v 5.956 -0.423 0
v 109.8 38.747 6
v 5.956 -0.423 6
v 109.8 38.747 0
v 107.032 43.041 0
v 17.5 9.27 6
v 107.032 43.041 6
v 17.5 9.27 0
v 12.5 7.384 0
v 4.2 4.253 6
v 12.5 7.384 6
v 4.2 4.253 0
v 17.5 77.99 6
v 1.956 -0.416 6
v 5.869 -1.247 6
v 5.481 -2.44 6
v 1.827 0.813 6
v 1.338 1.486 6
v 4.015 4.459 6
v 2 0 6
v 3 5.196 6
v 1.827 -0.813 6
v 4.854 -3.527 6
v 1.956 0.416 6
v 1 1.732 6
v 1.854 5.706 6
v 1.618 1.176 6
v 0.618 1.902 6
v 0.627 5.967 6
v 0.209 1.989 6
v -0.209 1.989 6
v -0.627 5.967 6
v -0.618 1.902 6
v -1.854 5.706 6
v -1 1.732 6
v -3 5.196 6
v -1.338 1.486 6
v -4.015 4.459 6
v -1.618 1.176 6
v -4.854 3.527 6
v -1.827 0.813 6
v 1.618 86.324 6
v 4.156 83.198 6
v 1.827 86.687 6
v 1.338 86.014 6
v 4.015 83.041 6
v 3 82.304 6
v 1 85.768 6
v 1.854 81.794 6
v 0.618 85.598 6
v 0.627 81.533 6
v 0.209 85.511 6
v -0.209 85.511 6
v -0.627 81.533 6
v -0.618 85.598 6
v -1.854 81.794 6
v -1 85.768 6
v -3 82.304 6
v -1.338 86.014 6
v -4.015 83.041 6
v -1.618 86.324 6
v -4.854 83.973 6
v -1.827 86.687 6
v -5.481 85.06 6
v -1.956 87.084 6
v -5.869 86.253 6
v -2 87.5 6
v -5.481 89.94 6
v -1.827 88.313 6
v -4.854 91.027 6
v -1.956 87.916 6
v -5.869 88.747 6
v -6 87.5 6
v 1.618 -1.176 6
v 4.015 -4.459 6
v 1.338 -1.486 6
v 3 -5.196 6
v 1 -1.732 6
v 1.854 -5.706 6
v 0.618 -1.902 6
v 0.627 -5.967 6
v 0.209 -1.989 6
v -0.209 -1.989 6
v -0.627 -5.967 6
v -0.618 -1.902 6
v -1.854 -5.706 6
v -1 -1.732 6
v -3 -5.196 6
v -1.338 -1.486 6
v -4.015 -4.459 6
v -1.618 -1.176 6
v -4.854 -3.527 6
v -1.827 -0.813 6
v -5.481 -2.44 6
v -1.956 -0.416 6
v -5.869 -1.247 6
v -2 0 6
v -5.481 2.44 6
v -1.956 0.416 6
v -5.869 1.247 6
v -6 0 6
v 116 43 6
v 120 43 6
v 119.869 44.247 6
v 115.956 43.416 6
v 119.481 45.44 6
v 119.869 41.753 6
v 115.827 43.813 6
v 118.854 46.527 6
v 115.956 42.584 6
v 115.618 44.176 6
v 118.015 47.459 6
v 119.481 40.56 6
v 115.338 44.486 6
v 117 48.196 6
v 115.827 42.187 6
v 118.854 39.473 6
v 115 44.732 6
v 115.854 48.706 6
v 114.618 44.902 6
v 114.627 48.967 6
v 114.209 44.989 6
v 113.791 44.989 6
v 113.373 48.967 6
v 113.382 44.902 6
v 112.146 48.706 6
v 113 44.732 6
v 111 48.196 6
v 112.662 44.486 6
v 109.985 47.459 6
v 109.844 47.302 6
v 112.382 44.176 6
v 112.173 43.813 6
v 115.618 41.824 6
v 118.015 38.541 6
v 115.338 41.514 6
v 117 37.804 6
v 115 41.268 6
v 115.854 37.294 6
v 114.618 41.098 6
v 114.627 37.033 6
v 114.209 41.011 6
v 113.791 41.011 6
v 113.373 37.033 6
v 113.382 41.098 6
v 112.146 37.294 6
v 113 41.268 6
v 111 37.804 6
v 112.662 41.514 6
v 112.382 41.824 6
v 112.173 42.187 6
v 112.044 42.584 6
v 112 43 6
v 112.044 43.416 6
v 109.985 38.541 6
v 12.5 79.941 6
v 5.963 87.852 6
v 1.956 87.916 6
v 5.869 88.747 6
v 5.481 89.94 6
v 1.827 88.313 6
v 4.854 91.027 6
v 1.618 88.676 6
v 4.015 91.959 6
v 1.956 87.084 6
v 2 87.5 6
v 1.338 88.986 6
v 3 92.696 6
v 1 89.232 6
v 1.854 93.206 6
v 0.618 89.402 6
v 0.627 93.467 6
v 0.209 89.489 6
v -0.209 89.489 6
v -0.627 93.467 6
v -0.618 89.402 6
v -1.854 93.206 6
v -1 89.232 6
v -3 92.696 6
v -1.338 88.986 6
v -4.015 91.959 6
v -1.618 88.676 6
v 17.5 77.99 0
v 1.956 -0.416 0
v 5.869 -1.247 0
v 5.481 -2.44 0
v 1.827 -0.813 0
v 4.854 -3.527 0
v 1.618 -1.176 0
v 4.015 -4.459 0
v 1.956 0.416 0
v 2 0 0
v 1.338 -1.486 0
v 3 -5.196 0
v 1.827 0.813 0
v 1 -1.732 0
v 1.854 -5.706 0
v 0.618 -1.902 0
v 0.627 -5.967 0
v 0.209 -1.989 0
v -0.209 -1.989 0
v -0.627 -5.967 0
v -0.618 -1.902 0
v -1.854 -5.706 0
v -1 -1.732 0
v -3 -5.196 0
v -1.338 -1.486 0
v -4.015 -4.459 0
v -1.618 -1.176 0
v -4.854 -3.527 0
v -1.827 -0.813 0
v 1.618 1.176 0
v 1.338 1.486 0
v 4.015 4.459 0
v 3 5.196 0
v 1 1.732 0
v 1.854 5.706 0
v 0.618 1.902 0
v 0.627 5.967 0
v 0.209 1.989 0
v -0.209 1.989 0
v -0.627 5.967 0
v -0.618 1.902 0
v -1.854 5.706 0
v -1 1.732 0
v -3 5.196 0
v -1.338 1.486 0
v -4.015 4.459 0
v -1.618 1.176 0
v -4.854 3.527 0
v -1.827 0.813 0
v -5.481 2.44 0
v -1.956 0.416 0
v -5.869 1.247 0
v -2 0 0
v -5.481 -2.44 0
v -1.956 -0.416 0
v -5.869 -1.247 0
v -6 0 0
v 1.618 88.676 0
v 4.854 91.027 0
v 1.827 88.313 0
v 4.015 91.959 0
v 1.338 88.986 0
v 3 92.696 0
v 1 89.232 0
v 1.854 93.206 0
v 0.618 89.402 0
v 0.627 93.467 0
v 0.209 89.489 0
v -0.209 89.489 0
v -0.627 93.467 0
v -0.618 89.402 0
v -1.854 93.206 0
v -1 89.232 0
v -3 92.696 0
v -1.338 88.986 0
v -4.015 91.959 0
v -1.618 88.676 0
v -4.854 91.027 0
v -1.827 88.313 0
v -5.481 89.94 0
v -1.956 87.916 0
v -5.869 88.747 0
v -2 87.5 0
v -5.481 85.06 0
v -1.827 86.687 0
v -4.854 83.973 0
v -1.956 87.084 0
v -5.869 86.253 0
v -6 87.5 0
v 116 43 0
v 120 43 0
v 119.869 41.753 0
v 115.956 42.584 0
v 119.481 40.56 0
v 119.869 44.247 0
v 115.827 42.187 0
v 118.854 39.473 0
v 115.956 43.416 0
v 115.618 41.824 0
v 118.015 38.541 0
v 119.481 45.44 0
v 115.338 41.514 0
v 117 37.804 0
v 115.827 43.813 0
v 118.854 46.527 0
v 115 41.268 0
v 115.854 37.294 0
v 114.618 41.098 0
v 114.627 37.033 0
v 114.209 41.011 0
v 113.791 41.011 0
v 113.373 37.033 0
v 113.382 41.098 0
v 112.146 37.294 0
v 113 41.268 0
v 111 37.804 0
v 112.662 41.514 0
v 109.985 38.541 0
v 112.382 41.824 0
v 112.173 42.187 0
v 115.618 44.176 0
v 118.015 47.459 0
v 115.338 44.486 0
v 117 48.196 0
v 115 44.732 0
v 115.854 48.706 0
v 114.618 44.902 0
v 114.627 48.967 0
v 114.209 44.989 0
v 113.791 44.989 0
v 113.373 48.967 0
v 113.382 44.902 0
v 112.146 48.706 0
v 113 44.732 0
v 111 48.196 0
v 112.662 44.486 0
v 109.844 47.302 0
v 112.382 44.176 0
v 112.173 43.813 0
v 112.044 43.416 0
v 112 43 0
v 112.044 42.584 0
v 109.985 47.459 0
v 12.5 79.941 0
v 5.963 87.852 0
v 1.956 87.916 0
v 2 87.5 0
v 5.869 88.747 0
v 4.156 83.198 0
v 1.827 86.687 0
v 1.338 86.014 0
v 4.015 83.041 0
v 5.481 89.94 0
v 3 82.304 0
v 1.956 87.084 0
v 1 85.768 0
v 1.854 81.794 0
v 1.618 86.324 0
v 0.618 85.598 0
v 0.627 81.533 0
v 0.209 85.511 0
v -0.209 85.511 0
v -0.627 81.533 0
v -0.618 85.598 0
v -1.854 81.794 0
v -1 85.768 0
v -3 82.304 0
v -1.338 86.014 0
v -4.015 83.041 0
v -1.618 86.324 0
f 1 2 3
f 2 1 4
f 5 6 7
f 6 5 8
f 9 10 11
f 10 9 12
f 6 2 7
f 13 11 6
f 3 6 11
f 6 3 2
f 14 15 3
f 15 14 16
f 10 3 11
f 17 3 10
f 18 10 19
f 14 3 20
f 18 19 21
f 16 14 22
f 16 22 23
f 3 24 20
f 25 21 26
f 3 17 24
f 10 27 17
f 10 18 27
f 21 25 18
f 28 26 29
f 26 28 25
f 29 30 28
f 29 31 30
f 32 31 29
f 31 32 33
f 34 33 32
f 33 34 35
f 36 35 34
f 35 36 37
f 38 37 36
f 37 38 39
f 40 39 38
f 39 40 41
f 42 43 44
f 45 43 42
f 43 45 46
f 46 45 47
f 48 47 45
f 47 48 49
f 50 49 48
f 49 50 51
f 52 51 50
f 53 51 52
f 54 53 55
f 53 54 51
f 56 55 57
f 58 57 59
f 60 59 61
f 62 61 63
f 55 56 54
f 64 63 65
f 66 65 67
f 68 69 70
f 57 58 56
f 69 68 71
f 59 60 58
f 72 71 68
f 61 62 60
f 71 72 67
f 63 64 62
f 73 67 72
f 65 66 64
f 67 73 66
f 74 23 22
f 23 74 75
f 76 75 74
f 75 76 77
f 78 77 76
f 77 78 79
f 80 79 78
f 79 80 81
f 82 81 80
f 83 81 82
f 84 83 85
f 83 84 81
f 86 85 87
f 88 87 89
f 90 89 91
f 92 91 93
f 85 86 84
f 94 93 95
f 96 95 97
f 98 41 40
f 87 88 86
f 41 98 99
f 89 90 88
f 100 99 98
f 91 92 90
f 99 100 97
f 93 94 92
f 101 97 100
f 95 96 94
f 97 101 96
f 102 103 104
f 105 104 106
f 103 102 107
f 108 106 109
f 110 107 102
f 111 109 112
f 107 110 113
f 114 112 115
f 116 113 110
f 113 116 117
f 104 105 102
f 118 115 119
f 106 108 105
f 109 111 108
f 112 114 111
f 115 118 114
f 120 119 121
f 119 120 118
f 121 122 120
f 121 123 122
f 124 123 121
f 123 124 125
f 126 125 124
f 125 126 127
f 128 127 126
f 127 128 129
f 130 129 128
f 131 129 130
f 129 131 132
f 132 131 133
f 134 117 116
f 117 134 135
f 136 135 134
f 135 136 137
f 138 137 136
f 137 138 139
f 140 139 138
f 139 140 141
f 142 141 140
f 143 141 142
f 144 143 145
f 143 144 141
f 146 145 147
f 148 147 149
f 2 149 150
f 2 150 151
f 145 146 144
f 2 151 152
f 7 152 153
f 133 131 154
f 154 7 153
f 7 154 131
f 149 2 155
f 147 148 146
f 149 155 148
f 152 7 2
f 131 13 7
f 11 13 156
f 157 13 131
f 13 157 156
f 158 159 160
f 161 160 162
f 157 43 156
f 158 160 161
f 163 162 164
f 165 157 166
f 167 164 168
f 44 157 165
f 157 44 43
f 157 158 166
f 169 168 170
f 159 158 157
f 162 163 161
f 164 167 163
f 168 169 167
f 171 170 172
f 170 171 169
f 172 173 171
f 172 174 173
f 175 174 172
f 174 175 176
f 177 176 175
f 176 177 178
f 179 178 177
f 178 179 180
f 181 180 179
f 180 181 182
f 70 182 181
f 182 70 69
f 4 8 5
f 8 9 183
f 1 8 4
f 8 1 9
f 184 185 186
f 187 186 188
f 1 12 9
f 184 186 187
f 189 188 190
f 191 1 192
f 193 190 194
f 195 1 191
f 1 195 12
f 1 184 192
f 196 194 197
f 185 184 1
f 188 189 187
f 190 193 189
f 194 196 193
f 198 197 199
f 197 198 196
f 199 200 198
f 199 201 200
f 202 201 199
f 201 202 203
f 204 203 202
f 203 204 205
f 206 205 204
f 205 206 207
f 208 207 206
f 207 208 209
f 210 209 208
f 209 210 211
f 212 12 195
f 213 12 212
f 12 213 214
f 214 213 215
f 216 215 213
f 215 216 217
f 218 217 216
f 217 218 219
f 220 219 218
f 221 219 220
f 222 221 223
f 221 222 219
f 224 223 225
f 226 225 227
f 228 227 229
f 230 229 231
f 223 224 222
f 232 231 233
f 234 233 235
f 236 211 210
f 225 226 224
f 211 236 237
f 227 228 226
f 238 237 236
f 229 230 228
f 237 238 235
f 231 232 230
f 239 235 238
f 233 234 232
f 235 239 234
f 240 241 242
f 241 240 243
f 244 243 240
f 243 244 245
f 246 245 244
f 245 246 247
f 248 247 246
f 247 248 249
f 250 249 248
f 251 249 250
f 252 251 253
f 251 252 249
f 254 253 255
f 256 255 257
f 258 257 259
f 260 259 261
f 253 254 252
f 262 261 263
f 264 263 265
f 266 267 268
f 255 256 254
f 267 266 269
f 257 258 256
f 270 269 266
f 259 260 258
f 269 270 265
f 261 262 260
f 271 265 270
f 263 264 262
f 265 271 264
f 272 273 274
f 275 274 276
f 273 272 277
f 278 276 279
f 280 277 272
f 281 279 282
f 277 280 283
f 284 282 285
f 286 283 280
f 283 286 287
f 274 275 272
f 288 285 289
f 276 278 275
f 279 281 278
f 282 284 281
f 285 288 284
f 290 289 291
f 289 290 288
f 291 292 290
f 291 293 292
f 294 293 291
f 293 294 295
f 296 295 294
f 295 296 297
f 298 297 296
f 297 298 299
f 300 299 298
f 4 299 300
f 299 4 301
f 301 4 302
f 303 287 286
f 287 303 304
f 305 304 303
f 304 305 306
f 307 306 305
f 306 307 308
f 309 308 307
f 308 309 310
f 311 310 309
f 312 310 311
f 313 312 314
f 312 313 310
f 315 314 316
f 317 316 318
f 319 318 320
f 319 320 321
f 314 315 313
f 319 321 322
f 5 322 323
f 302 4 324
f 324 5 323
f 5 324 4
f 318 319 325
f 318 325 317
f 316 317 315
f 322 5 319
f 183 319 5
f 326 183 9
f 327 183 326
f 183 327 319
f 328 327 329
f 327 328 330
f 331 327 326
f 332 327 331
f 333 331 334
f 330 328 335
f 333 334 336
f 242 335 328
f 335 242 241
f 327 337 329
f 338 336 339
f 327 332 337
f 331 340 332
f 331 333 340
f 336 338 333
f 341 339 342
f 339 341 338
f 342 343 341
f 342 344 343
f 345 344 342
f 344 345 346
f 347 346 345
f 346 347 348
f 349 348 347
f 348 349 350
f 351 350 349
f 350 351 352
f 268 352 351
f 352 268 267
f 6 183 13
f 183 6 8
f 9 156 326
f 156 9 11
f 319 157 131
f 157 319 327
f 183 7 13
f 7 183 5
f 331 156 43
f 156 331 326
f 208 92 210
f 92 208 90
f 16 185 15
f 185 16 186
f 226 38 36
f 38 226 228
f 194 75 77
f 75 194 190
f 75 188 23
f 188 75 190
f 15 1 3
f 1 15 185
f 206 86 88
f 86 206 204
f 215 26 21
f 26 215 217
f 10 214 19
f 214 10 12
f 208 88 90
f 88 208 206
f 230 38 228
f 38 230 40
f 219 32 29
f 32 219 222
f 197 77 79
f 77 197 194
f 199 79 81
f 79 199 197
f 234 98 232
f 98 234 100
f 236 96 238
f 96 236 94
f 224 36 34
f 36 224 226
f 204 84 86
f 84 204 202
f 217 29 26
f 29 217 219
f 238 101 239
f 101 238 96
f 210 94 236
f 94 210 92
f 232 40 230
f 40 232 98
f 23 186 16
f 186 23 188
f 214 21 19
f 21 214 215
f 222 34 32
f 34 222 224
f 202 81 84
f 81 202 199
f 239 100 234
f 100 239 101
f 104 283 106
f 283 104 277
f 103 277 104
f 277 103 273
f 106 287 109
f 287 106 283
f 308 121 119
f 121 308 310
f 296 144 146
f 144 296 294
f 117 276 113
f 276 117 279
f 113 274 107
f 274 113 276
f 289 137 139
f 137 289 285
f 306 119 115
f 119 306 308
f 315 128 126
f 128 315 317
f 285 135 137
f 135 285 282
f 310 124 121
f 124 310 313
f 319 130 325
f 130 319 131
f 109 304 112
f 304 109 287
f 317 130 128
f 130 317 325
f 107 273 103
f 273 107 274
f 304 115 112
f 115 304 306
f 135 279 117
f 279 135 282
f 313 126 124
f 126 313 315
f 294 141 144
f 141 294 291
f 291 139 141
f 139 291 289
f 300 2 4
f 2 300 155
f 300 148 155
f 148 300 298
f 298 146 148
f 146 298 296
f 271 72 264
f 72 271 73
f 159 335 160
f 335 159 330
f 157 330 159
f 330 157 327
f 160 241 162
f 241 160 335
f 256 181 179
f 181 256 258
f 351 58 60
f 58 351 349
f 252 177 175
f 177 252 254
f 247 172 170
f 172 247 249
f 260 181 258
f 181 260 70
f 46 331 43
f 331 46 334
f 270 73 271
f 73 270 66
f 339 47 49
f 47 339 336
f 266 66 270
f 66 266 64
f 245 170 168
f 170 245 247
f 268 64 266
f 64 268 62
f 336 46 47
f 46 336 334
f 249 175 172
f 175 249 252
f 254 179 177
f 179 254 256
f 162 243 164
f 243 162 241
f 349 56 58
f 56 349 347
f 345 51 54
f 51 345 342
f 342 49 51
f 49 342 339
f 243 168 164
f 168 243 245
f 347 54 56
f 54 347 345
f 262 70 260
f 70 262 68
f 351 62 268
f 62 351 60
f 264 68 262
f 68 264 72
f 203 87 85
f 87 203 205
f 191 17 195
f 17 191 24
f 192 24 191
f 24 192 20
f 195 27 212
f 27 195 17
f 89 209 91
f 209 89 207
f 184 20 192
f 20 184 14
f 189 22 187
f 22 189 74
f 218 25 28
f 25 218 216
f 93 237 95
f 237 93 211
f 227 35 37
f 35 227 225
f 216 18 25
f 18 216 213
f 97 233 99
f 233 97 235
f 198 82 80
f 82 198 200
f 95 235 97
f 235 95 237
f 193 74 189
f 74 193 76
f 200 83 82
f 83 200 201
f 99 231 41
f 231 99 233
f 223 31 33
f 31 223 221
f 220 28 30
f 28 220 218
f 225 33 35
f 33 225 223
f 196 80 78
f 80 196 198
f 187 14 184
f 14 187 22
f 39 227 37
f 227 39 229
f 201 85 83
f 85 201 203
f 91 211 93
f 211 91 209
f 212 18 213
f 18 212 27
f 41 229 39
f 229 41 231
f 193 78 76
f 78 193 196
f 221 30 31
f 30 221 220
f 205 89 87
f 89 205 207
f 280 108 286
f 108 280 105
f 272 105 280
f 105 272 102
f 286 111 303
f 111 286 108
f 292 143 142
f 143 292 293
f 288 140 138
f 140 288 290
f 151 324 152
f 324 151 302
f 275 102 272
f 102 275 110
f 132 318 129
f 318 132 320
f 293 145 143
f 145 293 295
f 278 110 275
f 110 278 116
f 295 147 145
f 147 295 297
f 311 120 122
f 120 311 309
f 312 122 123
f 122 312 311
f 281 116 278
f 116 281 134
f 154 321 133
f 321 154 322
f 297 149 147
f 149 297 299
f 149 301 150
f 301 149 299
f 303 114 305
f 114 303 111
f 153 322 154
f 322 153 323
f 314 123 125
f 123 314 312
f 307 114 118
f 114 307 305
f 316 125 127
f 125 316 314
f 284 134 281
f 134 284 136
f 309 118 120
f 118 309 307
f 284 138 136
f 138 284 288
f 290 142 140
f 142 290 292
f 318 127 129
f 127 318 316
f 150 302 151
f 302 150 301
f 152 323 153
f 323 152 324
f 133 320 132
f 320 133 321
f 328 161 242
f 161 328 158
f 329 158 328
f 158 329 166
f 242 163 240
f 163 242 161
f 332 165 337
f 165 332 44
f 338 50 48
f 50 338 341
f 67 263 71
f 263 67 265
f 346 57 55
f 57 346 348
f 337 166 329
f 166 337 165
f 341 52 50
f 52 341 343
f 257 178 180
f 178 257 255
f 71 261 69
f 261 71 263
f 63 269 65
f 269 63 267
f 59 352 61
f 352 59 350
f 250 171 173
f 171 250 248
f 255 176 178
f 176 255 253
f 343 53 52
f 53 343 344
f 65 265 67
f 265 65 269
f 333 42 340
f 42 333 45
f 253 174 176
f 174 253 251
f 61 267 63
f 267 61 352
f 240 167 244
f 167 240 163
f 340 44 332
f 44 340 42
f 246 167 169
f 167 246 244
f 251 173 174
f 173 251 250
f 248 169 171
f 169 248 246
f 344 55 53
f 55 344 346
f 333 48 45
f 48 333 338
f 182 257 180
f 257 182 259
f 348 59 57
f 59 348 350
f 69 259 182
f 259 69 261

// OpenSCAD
difference() {
    union() {
        hull() {
            cylinder(d=5, h=6, $fn=30);

            translate([114, 43, 0])
            cylinder(d=5, h=6, $fn=30);
        }

//        hull() {
//            cylinder(d=5, h=6, $fn=30);
//
//            translate([0, 87.5, 0])
//            cylinder(d=5, h=6, $fn=30);
//        }

        translate([15, 87.5/2, 6/2])
        cube([5, 78, 6], center=true);
        

        hull() {
            translate([114, 43, 0])
            cylinder(d=5, h=6, $fn=30);

            translate([0, 87.5, 0])
            cylinder(d=5, h=6, $fn=30);
        }

        cylinder(d=12, h=6, $fn=30);

        translate([114, 43, 0])
        cylinder(d=12, h=6, $fn=30);

        translate([0, 87.5, 0])
        cylinder(d=12, h=6, $fn=30);
    }

    cylinder(d=4, h=18, center=true, $fn=30);

    translate([114, 43, 0])
    cylinder(d=4, h=18, center=true, $fn=30);

    translate([0, 87.5, 0])
    cylinder(d=4, h=18, center=true, $fn=30);
}
